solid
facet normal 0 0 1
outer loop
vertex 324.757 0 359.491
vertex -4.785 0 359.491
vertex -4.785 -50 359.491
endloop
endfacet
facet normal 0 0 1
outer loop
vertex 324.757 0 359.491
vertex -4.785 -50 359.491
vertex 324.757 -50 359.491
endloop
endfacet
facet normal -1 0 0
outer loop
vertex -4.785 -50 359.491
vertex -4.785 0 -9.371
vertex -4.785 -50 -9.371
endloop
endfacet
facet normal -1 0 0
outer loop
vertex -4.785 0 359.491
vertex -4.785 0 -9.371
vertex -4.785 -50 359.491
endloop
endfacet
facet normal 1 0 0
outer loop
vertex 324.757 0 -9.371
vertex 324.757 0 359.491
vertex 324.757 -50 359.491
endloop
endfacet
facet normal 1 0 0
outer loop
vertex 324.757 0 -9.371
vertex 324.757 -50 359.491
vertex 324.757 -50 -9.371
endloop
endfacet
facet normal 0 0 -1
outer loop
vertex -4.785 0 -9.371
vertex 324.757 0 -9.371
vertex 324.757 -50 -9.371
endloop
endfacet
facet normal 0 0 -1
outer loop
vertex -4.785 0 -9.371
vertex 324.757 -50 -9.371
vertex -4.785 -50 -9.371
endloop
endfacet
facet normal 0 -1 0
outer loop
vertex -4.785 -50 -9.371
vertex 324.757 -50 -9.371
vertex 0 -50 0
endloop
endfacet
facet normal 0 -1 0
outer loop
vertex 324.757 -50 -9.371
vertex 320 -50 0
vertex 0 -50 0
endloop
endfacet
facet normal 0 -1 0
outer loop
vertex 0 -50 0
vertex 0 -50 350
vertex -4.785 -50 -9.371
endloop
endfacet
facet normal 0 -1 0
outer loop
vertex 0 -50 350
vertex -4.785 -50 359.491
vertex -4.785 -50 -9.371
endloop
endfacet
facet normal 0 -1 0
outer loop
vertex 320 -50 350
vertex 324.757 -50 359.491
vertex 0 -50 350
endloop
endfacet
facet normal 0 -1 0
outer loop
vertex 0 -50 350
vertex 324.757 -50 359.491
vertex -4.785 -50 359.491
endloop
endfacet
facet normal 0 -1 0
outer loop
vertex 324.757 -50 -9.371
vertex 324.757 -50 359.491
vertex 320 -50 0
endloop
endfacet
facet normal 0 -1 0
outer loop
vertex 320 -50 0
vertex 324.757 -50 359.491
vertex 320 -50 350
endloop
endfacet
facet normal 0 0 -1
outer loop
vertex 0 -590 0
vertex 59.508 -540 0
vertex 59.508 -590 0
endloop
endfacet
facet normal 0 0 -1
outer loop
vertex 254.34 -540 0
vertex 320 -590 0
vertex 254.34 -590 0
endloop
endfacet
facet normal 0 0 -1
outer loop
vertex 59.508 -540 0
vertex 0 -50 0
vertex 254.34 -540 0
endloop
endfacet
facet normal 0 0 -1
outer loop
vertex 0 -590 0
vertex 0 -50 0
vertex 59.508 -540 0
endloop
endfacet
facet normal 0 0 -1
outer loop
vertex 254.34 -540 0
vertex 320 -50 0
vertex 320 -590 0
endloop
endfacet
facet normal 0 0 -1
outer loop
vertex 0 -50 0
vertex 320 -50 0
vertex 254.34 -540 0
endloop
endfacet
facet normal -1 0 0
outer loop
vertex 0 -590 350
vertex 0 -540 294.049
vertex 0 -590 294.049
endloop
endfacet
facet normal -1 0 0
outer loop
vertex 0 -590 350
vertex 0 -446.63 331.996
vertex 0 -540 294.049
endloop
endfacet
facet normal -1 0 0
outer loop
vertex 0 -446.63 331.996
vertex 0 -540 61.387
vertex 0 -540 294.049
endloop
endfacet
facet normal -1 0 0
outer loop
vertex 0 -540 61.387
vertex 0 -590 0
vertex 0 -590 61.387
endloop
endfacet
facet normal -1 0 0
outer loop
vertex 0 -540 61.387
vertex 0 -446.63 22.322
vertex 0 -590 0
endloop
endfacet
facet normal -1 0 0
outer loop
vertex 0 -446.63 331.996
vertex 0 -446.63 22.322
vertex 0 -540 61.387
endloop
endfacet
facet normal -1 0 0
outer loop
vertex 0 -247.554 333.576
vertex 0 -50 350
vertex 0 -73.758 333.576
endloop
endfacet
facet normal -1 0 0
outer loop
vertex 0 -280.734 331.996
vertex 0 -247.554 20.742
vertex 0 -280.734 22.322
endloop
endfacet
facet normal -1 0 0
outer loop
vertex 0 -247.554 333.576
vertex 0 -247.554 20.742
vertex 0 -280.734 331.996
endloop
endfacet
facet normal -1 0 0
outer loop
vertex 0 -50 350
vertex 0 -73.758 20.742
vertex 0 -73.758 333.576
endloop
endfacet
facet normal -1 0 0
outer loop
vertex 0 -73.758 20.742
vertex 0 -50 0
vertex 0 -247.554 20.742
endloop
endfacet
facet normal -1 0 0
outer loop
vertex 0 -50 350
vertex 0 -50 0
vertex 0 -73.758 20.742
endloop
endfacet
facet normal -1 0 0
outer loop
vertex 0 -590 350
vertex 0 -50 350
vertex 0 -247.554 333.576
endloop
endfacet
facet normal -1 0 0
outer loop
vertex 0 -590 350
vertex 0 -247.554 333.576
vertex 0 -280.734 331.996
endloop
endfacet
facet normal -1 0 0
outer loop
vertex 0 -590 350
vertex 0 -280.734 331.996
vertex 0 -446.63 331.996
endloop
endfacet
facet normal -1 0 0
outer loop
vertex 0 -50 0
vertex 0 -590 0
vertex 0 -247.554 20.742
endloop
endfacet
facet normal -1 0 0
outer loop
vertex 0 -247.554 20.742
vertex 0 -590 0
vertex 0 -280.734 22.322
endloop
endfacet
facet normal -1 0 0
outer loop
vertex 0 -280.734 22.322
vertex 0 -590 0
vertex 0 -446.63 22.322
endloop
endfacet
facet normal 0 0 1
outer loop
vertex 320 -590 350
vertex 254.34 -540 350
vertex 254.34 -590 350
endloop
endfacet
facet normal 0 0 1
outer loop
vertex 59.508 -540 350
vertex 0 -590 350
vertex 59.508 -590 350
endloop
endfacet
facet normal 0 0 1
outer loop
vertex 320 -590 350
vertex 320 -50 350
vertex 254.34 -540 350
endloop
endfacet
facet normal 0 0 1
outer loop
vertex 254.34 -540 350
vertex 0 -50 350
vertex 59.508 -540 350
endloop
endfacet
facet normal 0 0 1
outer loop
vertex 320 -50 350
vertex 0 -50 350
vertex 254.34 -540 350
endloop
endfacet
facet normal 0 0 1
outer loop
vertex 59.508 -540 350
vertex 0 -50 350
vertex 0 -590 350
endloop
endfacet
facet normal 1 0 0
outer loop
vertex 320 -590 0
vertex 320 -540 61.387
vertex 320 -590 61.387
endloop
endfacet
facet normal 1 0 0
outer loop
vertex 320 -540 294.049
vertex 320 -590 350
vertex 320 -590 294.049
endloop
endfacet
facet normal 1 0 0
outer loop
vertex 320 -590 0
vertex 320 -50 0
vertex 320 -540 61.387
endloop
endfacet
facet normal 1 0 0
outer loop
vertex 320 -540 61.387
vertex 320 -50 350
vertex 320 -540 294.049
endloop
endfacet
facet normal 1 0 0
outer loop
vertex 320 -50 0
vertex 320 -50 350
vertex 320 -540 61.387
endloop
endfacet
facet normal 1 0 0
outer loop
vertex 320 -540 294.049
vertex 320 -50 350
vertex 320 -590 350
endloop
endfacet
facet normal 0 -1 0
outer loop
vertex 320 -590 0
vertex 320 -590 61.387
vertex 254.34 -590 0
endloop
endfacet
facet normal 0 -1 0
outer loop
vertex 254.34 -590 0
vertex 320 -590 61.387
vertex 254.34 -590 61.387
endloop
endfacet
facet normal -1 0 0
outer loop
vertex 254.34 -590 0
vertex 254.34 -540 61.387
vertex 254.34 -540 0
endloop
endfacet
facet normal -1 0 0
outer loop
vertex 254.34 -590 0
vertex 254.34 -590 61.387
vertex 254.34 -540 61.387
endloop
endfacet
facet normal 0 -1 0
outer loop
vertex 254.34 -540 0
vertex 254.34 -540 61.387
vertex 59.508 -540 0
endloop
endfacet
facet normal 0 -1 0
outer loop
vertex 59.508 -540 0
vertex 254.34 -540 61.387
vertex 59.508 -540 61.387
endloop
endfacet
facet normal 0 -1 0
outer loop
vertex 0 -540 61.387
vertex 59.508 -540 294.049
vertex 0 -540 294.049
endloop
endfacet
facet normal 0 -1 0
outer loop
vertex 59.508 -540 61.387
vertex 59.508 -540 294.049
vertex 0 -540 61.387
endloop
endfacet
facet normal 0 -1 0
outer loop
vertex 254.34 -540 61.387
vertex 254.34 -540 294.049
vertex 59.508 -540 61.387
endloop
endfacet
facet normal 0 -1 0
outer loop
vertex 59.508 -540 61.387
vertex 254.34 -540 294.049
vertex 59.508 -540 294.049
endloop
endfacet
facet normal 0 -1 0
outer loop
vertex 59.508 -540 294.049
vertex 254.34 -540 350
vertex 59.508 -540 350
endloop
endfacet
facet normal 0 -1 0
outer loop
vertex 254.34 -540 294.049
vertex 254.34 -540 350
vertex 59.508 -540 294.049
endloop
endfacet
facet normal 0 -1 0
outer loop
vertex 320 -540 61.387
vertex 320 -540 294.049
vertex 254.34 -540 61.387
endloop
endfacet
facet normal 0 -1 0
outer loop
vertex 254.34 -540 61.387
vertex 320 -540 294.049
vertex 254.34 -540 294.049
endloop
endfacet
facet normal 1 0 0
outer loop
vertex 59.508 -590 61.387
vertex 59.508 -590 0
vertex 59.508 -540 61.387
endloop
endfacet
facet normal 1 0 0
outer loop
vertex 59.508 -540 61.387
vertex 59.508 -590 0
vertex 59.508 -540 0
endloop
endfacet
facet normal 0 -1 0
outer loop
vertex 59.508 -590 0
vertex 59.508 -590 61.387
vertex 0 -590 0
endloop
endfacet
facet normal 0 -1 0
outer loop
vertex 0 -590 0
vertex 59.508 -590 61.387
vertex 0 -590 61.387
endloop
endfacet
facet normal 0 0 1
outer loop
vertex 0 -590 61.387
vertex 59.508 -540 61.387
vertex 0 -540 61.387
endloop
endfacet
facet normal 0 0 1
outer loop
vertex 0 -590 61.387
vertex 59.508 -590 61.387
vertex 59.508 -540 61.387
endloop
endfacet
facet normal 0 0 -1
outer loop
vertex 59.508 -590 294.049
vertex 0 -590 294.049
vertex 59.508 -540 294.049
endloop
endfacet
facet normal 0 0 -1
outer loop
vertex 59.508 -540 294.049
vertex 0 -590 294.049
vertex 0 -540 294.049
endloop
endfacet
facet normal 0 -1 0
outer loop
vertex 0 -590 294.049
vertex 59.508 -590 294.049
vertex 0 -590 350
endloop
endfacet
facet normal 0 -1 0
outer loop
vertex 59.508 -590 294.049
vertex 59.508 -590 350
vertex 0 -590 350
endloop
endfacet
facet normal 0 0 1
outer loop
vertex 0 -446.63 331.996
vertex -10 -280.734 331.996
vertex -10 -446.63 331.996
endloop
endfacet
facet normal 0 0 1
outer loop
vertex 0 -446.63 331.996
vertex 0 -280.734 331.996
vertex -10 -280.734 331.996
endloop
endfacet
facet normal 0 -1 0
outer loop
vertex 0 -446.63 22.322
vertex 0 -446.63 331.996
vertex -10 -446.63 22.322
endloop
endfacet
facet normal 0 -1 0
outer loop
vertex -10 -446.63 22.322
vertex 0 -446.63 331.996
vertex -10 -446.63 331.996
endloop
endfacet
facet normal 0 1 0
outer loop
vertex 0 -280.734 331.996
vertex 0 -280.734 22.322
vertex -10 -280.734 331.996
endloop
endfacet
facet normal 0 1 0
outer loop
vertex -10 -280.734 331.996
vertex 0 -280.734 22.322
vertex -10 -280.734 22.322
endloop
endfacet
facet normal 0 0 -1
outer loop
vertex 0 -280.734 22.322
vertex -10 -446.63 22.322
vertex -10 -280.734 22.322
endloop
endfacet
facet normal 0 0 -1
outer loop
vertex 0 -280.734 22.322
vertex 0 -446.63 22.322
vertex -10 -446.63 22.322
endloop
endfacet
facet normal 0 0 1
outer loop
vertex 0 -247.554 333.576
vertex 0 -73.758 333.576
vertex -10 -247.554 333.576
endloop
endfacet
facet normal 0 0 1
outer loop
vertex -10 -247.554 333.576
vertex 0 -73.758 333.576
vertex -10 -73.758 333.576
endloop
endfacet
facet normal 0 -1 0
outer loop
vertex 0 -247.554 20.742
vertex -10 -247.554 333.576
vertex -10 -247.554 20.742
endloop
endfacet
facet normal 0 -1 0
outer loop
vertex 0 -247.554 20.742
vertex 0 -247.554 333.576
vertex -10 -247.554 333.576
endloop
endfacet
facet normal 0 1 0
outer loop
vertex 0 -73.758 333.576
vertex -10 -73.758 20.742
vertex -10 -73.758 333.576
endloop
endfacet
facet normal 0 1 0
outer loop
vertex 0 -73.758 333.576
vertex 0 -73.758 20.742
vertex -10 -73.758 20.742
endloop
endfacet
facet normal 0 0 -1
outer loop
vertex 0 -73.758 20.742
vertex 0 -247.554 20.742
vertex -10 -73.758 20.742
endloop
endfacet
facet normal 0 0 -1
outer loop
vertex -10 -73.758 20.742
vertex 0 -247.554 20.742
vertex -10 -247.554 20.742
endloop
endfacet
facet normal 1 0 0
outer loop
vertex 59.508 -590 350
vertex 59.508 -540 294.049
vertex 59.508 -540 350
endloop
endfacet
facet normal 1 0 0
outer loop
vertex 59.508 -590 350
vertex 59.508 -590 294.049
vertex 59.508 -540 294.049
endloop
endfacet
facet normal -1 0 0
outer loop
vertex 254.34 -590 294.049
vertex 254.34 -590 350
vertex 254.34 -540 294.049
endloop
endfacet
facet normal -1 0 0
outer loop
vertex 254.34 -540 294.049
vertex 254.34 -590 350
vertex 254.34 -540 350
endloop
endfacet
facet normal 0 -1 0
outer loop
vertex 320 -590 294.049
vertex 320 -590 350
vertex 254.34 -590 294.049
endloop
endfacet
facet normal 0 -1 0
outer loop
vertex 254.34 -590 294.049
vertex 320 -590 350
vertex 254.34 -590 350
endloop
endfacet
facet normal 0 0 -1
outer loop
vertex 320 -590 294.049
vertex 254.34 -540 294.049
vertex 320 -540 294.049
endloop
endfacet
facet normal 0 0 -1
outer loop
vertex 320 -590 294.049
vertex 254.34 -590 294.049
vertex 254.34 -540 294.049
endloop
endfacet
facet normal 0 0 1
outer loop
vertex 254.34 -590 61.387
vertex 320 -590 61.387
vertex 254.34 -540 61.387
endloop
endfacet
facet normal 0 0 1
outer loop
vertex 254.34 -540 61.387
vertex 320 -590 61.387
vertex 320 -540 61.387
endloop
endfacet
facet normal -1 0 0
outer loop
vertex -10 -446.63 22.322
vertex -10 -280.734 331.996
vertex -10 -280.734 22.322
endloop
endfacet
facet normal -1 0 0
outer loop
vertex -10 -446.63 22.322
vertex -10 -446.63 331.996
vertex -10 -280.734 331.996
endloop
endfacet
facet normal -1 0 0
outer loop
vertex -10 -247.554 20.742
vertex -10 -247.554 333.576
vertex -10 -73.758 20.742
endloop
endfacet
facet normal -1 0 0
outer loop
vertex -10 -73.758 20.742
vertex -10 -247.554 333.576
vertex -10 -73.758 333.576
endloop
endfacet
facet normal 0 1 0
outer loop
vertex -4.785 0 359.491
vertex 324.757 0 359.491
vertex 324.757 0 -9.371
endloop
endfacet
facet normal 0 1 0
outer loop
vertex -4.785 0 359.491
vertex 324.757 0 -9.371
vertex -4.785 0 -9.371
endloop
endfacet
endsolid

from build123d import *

# Parameters (mm, degrees)
SKETCH_W      = 320
SKETCH_H      = 350
PAD_DEPTH     = 590
POCKET_DEPTH  = 50
SKETCH002_W   = 312.833359
SKETCH002_H   = 173.796318
SKETCH002_W_2 = 309.6734
SKETCH002_H_2 = 165.896453
PAD001_DEPTH  = 10
SKETCH003_W   = 329.541511
SKETCH003_H   = 368.861823
PAD002_DEPTH  = 50


with BuildPart() as part:
    # Sketch → Pad (new body)
    with BuildSketch(Plane.XZ):
        with Locations((160, 175)):
            Rectangle(SKETCH_W, SKETCH_H)
    extrude(amount=PAD_DEPTH)

    # Sketch001 (on Face6 of Pad) → Pocket (cut)
    with BuildSketch(Plane.XZ.offset(590)):
        Polygon((-35.069702, 294.049438), (-35.069702, 61.386997), (59.508472, 61.386997), (59.508472, -35.082802), (254.339645, -35.082802), (254.339645, 61.386997), (365.941986, 61.386997), (365.941986, 294.049438), (254.339645, 294.049438), (254.339645, 365.928894), (59.508472, 365.928894), (59.508472, 294.049438), align=None)
    extrude(amount=-POCKET_DEPTH, mode=Mode.SUBTRACT)

    # Sketch002 (on Face9 of Pocket) → Pad001 (join)
    with BuildSketch(Plane(origin=(0, 0, 0), x_dir=(0, 0, -1), z_dir=(-1, 0, 0))):
        with Locations((-177.158851, 160.656223)):
            Rectangle(SKETCH002_W, SKETCH002_H)
        with Locations((-177.158844, 363.681931)):
            Rectangle(SKETCH002_W_2, SKETCH002_H_2)
    extrude(amount=PAD001_DEPTH)

    # Sketch003 (on Face2 of Pad001) → Pad002 (join)
    with BuildSketch(Plane(origin=(0, 0, 0), x_dir=(1, 0, 0), z_dir=(0, 1, 0))):
        with Locations((159.986142, -175.059994)):
            Rectangle(SKETCH003_W, SKETCH003_H)
    extrude(amount=-PAD002_DEPTH)


solid = part.part
